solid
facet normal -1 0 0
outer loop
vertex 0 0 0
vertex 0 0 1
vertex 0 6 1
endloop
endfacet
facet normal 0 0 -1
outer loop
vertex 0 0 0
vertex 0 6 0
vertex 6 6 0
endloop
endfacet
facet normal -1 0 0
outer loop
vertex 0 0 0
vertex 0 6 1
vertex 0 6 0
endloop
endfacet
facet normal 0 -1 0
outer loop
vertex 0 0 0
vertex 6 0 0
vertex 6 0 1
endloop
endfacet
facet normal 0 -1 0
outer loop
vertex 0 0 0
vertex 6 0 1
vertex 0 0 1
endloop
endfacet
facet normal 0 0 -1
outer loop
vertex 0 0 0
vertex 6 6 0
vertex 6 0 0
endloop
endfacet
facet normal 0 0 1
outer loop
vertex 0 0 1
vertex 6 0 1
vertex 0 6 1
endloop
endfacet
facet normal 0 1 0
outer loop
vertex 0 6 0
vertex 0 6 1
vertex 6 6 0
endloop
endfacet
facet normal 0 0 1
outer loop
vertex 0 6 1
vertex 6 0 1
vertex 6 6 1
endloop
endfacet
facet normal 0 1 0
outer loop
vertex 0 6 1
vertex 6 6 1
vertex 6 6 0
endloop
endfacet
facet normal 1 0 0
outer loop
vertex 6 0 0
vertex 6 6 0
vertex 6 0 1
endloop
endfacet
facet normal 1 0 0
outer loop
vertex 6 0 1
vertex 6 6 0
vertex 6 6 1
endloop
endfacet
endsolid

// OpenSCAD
/* Warning, this is a very basic generator with a lot of approximation 
input data : [QFN, RPX, 6x6x1.0mm, 36, , B, C04-17032B]
generated by com.zoubworld.electronics.cad.model3d.Basic
Date : Sun Feb 15 10:50:49 CET 2026
*/

//body
color("black")
translate([0,0,0])
cube([6.0,6.0,1.0], center=false);
